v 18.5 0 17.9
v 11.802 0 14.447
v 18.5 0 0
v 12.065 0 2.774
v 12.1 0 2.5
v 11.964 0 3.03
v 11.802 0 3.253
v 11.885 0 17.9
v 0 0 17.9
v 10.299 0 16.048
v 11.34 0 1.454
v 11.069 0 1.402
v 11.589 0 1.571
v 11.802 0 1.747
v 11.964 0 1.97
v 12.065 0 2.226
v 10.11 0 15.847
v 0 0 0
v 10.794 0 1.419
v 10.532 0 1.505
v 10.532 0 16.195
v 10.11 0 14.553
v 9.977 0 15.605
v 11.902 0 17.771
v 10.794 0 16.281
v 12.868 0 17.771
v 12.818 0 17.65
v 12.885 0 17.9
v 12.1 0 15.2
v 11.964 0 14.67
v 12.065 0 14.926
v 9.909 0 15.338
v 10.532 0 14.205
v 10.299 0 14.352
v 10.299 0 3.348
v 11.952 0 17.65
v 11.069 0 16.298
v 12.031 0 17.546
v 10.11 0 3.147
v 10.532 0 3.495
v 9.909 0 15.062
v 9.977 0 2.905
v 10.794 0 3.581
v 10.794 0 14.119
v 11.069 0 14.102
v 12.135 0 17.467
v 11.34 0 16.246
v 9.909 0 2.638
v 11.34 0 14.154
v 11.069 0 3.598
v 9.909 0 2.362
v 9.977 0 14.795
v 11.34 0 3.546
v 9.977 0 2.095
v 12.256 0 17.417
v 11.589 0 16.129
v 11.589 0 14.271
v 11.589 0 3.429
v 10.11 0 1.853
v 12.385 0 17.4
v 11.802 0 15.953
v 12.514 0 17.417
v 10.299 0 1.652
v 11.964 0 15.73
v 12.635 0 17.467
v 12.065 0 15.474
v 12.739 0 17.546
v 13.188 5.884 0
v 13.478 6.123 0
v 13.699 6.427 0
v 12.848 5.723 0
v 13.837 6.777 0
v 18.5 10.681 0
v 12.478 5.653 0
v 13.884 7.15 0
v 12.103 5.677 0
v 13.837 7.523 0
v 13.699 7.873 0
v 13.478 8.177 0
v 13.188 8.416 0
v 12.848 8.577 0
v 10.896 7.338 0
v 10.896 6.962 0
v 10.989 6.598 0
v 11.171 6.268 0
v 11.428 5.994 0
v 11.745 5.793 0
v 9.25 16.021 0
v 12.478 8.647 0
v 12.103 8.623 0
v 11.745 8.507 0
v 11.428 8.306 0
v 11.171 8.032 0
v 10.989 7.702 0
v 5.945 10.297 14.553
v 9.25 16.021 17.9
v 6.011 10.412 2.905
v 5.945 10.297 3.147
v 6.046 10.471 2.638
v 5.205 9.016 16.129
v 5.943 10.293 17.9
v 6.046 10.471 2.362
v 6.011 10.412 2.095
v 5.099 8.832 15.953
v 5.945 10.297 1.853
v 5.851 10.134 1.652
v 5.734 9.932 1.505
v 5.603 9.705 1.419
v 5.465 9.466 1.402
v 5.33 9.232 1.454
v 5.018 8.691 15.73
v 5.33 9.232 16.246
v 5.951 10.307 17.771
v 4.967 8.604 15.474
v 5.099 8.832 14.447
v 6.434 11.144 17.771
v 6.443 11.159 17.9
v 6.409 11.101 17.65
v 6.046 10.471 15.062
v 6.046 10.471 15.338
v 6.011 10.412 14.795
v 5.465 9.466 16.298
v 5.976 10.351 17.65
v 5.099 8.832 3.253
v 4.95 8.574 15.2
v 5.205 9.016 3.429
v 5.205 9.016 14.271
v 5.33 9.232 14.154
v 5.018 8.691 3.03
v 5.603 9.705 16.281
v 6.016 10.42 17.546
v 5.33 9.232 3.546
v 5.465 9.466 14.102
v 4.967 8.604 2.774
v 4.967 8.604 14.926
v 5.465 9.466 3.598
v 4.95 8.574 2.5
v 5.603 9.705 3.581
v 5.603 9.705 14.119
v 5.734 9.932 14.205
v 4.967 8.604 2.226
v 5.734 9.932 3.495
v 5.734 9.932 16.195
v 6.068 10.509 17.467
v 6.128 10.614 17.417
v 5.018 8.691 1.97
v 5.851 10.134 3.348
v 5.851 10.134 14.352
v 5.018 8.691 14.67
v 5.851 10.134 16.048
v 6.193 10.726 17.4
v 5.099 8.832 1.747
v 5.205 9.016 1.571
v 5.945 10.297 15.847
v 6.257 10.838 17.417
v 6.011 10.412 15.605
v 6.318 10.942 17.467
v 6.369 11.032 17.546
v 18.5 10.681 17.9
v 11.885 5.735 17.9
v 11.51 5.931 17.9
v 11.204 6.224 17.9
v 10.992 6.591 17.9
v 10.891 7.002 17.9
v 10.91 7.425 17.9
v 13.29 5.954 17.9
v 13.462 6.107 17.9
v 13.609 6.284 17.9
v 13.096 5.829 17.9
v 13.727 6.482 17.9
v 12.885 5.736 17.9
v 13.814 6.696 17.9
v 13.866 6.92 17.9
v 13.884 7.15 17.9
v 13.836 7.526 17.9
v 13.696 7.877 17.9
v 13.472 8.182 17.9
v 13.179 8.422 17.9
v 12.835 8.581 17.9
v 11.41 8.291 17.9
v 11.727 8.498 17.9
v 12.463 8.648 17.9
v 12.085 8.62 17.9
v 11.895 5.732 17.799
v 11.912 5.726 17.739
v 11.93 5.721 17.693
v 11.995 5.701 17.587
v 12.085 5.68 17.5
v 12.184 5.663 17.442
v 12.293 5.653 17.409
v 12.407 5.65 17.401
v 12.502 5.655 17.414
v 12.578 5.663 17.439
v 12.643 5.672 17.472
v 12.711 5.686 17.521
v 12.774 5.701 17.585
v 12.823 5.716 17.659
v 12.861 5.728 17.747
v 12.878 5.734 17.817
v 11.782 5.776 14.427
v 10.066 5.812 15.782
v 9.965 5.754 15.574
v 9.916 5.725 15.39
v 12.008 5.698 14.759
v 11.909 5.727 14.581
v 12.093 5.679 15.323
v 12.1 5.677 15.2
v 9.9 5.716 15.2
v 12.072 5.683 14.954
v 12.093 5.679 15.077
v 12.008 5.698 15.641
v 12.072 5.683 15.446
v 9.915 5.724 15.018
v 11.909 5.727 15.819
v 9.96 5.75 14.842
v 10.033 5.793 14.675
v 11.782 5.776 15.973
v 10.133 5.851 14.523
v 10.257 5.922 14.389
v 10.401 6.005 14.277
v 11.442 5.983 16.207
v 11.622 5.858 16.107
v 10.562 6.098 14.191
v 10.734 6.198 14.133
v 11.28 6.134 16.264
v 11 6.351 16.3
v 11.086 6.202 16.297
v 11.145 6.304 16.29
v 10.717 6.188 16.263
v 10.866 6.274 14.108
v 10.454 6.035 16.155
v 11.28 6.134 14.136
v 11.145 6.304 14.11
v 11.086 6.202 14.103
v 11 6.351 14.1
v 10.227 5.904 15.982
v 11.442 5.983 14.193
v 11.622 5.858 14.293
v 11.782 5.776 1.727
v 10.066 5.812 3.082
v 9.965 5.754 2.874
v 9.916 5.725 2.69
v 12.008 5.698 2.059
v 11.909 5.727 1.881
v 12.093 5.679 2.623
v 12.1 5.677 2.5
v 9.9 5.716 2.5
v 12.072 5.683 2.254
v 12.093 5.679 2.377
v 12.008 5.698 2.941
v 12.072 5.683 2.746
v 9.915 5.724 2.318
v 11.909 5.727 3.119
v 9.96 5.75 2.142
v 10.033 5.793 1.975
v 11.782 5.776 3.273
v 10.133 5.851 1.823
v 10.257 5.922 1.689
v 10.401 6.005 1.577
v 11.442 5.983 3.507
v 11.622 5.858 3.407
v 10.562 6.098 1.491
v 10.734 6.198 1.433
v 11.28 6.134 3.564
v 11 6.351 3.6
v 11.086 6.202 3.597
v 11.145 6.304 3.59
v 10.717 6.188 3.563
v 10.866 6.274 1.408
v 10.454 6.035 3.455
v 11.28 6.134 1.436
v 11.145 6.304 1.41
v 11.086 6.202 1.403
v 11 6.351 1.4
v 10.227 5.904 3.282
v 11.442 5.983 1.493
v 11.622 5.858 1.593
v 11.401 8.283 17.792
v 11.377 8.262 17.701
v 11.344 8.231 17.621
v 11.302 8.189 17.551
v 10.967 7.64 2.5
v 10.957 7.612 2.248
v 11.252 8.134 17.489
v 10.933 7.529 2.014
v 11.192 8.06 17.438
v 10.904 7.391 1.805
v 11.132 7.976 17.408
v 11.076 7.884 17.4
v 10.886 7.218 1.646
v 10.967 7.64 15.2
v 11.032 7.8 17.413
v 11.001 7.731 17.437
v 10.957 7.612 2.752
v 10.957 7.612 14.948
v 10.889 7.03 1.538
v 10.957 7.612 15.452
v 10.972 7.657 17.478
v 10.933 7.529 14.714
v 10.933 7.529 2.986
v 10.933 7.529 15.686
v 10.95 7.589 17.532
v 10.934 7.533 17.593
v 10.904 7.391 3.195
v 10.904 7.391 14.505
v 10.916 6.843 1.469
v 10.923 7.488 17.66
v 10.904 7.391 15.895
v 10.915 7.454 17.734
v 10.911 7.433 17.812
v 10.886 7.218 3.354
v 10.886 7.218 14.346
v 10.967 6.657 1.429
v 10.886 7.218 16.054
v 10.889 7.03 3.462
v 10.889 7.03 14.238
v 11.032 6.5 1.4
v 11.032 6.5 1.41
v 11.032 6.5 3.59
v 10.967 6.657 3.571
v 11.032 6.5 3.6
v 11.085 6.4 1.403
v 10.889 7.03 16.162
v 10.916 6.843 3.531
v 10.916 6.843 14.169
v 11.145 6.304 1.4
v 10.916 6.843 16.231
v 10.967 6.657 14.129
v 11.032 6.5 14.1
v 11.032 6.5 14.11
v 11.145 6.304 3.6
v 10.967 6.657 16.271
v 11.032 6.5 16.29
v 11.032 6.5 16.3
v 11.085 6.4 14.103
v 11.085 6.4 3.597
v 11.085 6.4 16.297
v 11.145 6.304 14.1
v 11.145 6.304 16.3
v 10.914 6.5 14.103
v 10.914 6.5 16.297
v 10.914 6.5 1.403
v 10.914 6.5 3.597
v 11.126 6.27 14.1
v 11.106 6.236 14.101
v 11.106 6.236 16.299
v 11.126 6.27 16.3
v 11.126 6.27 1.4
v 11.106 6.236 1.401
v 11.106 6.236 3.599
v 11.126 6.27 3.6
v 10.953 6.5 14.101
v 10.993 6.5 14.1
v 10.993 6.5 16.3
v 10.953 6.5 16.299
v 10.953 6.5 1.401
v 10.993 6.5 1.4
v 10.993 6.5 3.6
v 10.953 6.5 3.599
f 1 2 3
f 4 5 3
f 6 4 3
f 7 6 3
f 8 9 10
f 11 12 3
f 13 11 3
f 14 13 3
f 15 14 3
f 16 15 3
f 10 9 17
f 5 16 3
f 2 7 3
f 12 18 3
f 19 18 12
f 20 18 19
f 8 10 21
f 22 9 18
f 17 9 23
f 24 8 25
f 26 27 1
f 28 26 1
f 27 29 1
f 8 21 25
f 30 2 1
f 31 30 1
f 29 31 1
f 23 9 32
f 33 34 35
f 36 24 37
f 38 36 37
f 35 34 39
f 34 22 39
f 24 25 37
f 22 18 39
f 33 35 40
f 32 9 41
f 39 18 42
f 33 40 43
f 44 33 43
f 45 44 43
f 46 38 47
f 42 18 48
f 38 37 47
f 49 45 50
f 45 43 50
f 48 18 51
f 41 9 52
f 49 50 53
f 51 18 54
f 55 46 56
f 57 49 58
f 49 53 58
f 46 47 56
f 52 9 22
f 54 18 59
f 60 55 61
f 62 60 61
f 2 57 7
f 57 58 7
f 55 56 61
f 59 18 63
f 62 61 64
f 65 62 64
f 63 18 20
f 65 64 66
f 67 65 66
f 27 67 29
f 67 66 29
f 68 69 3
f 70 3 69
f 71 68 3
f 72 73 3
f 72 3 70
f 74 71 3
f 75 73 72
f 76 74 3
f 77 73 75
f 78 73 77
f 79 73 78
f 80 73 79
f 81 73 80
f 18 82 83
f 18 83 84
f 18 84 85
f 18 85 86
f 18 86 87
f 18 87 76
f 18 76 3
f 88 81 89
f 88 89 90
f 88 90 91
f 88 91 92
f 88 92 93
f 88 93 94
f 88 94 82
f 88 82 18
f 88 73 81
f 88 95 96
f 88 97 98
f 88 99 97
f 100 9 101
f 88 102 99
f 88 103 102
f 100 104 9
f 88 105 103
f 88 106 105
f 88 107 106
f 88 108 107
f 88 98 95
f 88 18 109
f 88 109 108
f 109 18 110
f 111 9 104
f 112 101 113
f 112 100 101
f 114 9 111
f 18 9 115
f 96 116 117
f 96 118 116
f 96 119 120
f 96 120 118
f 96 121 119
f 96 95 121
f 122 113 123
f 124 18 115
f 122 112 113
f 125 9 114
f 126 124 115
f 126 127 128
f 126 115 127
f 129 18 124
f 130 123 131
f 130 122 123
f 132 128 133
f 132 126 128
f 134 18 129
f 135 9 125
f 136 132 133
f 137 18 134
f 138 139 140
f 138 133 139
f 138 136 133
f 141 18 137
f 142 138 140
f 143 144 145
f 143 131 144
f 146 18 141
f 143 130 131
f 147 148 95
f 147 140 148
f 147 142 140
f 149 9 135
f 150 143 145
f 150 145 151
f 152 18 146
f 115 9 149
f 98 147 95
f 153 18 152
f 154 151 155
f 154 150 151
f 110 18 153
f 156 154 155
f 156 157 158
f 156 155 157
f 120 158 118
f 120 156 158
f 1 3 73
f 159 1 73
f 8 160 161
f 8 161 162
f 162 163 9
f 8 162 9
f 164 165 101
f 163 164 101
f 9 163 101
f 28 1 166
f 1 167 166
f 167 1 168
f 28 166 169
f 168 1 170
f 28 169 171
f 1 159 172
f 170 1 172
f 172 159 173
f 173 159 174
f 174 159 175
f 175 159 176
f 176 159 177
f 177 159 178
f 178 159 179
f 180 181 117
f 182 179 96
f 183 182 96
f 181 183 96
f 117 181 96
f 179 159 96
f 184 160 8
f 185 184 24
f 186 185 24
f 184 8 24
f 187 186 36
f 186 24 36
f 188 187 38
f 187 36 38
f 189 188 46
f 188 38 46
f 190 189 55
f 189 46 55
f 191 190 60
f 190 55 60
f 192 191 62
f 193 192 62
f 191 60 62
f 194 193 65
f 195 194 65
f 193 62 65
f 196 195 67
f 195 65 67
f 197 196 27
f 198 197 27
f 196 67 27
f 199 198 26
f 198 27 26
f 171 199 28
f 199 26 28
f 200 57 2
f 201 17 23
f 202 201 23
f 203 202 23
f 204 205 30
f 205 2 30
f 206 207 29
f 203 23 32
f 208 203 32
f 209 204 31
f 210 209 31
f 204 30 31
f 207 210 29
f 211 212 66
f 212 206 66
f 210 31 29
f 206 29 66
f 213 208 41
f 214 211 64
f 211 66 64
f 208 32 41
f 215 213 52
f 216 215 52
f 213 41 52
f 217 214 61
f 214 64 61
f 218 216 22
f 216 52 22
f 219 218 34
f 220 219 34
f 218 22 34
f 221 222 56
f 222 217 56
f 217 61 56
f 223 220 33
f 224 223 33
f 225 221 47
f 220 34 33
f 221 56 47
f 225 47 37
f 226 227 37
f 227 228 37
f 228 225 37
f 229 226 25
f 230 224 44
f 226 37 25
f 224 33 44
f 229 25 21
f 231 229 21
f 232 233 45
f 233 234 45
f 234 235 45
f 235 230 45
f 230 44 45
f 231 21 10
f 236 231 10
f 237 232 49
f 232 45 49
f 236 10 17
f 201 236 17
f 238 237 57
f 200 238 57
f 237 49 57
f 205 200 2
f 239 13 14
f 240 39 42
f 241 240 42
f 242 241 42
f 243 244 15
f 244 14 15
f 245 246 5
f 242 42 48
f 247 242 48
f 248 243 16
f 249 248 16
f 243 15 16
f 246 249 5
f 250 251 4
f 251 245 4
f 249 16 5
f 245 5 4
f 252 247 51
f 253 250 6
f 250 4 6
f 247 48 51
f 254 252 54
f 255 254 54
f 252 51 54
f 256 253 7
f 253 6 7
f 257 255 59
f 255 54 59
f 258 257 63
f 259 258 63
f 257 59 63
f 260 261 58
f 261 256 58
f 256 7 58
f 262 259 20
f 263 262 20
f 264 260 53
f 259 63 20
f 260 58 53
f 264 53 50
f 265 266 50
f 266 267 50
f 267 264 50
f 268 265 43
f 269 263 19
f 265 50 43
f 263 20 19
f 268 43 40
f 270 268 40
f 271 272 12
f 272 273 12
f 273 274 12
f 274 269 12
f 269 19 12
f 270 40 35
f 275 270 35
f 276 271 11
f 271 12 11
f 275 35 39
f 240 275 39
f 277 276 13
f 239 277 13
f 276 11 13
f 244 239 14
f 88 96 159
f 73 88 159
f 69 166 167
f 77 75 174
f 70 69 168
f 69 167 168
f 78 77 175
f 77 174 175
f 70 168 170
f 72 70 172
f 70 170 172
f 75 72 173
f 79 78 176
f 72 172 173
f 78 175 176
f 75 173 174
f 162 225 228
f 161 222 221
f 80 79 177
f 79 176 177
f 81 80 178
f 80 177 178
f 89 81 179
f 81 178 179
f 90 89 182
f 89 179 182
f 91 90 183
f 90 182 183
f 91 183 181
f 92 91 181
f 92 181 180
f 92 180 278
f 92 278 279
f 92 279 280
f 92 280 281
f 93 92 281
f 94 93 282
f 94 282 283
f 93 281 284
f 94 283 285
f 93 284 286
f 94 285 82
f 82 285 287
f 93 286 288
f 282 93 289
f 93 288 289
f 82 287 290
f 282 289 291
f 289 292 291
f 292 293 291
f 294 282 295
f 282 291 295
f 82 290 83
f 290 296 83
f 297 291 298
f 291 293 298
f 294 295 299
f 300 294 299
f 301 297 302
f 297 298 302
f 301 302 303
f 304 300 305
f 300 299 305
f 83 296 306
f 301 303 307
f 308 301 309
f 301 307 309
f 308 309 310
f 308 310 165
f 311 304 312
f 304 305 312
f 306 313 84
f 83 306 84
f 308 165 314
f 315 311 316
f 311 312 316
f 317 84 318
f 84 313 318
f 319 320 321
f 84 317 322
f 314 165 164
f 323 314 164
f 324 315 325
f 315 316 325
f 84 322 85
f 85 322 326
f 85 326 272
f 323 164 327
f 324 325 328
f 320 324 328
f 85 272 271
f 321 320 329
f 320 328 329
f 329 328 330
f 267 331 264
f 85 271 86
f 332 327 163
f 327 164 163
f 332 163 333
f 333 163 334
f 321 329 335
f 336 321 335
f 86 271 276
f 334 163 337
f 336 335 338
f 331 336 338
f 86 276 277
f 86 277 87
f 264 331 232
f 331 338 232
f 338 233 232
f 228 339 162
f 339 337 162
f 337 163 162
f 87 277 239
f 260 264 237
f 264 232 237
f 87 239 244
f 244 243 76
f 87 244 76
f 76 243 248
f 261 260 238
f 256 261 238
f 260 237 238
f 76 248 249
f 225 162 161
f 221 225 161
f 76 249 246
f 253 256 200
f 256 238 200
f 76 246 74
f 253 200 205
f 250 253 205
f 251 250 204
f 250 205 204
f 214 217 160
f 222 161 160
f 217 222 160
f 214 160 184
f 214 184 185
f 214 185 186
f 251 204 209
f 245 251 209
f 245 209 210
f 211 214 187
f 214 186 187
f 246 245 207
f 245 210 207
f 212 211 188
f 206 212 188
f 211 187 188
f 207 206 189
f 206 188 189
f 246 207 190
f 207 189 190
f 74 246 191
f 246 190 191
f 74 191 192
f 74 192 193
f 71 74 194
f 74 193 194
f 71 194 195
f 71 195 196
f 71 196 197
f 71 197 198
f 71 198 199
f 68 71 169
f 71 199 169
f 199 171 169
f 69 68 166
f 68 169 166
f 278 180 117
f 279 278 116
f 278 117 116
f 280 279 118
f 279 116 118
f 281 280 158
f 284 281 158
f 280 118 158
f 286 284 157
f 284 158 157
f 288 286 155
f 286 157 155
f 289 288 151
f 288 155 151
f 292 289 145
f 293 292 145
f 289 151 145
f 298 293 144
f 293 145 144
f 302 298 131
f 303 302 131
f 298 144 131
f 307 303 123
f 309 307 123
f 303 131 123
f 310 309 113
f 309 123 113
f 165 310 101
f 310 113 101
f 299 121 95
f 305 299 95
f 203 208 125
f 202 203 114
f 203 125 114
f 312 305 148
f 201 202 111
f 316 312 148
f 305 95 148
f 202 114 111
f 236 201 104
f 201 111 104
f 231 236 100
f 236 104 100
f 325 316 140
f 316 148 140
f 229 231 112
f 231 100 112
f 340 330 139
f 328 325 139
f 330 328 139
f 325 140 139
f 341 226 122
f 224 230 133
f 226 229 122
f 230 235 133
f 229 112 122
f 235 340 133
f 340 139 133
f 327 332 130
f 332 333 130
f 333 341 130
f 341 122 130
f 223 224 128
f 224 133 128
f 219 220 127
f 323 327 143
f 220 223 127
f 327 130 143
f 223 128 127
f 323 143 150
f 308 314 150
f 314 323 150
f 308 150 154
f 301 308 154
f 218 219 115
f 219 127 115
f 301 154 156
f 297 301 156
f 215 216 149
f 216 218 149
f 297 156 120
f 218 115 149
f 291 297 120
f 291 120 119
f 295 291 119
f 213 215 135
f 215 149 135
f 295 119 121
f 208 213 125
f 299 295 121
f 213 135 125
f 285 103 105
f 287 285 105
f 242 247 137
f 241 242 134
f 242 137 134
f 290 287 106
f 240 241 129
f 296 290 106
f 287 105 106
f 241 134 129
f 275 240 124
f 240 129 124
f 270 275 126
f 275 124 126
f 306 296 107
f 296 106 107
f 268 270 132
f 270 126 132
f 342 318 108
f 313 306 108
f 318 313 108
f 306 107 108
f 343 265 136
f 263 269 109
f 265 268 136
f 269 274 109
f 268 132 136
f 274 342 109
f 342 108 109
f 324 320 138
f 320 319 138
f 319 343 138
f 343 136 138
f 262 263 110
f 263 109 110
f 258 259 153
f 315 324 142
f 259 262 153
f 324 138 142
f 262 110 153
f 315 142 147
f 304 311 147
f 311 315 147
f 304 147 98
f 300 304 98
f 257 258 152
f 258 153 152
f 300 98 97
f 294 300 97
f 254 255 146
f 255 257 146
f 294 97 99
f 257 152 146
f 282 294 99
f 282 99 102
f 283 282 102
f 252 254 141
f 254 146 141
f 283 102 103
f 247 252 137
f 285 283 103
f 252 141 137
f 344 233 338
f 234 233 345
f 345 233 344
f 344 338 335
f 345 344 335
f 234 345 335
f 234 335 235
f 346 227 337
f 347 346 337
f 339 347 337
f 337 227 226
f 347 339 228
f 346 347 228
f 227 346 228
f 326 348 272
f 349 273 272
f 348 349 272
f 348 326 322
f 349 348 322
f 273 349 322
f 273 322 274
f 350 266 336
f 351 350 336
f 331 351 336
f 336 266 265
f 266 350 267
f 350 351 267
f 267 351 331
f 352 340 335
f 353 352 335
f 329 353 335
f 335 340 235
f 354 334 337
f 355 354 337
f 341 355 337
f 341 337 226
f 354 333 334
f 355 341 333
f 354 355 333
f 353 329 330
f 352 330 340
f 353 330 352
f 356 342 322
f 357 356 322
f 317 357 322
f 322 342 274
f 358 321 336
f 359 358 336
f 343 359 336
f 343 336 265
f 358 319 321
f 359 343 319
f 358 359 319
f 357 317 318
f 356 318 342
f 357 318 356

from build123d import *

# Parameters (mm, degrees)
PAD_DEPTH       = 17.9
SKETCH001_R     = 1.5
POCKET_DEPTH    = 17.9
SKETCH003_R     = 0.5
POCKET001_DEPTH = 6
SKETCH004_R     = 0.5
POCKET002_DEPTH = 6
SKETCH005_R     = 1.1
POCKET003_DEPTH = 6.5
SKETCH006_R     = 1.1
POCKET004_DEPTH = 6.5


with BuildPart() as part:
    # Sketch → Pad (new body)
    with BuildSketch(Plane.XY):
        Polygon((0, 0), (18.5, 0), (18.5, 10.68097998), (9.25, 16.02146997), align=None)
    extrude(amount=PAD_DEPTH)

    # Sketch001 → Pocket (cut)
    with BuildSketch(Plane.XY.offset(17.9)):
        with Locations((12.3841632741, 7.15)):
            Circle(SKETCH001_R)
    extrude(amount=-POCKET_DEPTH, mode=Mode.SUBTRACT)

    # Sketch003 → Pocket001 (cut)
    with BuildSketch(Plane.XZ):
        with Locations((12.385, 17.9)):
            Circle(SKETCH003_R)
    extrude(amount=-POCKET001_DEPTH, mode=Mode.SUBTRACT)

    # Sketch004 → Pocket002 (cut)
    with BuildSketch(Plane(origin=(0, 0, 0), x_dir=(-0.5, -0.8660254038, 0), z_dir=(-0.8660254038, 0.5, 0))):
        with Locations((-12.385, 17.9)):
            Circle(SKETCH004_R)
    extrude(amount=-POCKET002_DEPTH, mode=Mode.SUBTRACT)

    # Sketch005 → Pocket003 (cut)
    with BuildSketch(Plane.XZ):
        with Locations((11, 15.2)):
            Circle(SKETCH005_R)
        with Locations((11, 2.5)):
            Circle(SKETCH005_R)
    extrude(amount=-POCKET003_DEPTH, mode=Mode.SUBTRACT)

    # Sketch006 → Pocket004 (cut)
    with BuildSketch(Plane(origin=(0, 0, 0), x_dir=(-0.5, -0.8660254038, 0), z_dir=(-0.8660254038, 0.5, 0))):
        with Locations((-11, 15.2)):
            Circle(SKETCH006_R)
        with Locations((-11, 2.5)):
            Circle(SKETCH006_R)
    extrude(amount=-POCKET004_DEPTH, mode=Mode.SUBTRACT)


solid = part.part
